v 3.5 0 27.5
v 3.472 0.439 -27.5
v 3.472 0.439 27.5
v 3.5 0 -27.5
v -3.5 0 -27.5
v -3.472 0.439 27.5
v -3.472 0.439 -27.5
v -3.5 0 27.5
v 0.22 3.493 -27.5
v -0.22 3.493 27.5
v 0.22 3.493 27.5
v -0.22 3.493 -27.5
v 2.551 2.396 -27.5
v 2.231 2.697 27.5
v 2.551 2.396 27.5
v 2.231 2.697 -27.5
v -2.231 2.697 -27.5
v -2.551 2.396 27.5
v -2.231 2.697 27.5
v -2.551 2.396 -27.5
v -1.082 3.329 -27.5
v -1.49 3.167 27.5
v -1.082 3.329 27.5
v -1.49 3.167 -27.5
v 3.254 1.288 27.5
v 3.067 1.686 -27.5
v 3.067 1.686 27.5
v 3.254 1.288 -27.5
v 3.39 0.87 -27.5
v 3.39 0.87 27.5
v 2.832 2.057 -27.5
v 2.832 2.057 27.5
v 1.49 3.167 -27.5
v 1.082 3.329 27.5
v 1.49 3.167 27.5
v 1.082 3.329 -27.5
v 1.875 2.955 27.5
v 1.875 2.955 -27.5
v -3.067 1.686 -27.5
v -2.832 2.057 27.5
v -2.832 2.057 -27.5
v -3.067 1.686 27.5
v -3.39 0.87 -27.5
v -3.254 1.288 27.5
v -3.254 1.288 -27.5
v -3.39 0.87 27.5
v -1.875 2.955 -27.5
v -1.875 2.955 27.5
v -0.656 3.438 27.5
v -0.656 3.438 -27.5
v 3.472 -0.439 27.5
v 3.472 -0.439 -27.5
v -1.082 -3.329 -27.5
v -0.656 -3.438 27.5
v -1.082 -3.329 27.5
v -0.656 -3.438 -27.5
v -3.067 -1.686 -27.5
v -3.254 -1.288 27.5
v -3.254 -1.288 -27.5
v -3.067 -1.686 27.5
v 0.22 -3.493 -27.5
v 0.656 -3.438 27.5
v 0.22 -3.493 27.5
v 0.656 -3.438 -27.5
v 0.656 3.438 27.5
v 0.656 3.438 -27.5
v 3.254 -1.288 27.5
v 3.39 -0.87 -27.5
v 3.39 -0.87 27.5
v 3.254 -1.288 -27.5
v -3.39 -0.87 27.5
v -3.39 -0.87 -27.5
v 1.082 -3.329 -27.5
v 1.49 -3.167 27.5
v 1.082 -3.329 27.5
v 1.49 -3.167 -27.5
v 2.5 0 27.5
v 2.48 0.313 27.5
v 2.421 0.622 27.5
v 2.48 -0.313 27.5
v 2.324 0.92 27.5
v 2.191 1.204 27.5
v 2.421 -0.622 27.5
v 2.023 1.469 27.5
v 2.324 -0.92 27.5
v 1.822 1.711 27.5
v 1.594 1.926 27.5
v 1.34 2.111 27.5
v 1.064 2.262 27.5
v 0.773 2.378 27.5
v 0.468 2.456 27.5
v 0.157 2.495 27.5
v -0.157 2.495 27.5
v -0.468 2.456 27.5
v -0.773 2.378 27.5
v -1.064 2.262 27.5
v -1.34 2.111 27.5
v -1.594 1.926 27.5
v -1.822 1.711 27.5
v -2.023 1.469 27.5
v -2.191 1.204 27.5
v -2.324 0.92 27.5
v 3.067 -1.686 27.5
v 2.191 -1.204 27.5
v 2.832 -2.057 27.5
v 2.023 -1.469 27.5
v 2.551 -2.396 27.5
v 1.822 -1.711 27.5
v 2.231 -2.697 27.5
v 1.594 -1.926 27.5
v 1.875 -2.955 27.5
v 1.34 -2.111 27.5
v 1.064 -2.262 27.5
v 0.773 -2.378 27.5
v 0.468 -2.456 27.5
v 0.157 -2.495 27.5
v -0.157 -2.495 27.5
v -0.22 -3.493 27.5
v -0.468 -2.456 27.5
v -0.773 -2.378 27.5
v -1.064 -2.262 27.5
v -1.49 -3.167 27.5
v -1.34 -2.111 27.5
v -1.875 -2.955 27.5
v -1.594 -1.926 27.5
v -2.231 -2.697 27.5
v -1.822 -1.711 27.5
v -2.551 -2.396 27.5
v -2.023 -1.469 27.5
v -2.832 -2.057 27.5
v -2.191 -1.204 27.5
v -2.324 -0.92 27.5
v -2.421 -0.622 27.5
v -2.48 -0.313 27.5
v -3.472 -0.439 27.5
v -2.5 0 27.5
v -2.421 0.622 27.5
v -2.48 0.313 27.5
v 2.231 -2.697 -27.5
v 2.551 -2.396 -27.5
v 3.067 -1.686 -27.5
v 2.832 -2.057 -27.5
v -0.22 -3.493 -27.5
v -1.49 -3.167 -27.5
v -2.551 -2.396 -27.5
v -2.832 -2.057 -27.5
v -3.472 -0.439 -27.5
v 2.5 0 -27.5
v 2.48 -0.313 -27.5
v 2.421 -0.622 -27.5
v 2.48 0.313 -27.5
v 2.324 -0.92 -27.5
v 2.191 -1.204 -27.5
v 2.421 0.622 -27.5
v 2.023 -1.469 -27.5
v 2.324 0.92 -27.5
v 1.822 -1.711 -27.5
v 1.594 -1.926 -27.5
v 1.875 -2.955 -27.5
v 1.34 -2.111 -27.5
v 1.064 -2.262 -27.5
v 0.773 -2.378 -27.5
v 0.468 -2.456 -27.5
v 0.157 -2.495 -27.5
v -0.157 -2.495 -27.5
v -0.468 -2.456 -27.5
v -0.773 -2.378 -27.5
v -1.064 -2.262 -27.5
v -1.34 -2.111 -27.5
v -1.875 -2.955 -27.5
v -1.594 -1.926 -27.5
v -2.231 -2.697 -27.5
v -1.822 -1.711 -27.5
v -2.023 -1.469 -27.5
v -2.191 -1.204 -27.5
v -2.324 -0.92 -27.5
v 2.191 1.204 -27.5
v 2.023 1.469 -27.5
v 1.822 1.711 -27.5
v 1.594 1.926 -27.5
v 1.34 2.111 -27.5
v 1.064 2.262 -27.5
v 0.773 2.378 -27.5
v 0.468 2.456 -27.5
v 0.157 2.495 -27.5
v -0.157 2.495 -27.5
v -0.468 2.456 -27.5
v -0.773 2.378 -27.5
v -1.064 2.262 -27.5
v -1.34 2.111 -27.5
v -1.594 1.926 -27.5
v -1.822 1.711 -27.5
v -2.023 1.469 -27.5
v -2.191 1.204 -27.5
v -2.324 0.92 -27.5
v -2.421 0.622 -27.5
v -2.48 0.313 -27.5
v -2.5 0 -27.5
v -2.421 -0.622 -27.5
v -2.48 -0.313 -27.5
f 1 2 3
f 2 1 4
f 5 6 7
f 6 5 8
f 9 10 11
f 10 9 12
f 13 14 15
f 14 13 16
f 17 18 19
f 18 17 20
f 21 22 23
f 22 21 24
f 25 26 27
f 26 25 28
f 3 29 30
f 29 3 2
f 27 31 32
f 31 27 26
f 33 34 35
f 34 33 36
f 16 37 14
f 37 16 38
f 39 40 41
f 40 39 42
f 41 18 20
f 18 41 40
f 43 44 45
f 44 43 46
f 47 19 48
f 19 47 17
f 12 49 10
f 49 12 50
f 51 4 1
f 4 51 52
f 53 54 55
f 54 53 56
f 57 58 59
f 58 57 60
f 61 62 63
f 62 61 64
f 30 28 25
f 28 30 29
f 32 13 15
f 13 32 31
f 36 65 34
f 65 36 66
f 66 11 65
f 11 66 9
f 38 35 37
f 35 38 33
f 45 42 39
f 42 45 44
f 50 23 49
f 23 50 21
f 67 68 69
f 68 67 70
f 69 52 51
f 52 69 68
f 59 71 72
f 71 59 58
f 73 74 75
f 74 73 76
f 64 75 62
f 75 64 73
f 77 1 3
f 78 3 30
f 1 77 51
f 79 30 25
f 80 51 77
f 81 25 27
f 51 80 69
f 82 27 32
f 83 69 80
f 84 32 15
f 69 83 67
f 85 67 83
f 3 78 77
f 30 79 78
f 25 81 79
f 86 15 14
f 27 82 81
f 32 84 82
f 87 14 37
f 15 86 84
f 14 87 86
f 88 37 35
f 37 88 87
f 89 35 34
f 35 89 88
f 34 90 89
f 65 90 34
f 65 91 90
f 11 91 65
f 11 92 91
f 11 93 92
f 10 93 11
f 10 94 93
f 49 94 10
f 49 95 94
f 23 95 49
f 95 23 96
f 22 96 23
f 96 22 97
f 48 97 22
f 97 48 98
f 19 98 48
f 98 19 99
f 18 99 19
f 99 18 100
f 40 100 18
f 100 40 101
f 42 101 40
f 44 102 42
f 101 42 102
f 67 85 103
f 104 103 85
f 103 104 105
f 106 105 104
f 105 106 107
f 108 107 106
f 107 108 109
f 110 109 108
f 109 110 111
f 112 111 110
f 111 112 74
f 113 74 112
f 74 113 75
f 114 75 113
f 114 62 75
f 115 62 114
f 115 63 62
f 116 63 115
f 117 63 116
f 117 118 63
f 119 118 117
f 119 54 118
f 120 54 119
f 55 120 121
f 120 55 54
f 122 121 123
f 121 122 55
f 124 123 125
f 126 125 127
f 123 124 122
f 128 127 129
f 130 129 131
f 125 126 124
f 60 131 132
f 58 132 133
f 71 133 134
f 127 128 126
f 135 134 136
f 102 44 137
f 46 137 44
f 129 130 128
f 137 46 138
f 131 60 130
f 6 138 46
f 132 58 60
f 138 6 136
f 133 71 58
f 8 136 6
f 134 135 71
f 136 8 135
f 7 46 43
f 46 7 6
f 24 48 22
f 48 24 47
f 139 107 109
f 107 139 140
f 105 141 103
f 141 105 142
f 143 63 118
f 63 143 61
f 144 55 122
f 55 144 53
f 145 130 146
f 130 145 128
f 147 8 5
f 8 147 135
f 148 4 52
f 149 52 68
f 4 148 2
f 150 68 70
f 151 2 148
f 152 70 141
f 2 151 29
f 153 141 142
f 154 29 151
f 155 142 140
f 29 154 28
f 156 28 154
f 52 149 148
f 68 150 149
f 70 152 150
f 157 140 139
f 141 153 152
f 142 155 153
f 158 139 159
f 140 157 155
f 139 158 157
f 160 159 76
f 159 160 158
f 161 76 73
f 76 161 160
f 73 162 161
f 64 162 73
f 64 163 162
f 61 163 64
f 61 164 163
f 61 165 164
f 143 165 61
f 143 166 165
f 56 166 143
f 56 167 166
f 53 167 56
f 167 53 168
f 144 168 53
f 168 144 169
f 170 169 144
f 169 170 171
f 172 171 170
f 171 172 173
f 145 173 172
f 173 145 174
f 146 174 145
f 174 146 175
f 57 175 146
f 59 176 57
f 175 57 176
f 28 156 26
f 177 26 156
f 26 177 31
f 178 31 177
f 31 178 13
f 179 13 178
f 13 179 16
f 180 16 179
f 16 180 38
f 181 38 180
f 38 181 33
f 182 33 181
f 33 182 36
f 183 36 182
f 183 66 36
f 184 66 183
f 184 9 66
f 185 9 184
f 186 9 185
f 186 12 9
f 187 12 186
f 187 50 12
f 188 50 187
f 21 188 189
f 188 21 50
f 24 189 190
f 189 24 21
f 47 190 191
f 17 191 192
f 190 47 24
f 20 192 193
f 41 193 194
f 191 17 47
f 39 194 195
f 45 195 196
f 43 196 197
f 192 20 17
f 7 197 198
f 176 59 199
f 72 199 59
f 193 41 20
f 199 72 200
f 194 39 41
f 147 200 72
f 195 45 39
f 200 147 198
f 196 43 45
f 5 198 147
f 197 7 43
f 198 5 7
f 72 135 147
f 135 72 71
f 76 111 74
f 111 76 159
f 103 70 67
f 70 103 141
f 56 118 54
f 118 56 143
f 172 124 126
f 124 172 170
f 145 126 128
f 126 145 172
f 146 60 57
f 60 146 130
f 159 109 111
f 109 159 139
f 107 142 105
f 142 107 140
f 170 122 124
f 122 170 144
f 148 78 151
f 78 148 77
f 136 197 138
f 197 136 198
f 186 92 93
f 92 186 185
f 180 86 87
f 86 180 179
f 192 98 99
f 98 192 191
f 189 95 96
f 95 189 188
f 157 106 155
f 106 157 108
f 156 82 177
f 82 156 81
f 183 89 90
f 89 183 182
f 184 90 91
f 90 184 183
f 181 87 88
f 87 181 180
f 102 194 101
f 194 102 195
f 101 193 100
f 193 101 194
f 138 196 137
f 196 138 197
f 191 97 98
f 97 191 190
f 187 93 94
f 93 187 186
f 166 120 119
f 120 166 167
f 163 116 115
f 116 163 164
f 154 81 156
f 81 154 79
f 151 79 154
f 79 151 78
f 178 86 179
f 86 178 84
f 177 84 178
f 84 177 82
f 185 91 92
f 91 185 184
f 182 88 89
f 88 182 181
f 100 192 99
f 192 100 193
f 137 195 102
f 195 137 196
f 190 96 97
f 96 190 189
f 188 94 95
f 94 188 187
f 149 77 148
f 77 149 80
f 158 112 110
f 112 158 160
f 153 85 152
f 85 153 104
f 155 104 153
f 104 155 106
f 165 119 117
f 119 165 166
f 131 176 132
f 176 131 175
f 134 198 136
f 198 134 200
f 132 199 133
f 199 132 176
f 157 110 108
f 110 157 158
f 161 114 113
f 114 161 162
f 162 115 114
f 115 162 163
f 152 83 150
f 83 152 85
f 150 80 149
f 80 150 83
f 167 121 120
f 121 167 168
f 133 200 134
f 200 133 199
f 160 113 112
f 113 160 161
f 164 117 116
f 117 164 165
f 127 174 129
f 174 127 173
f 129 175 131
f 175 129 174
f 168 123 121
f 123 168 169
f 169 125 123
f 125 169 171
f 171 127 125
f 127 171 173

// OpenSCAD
$fn = 50;


difference() {
	union() {
		translate(v = [0, 0, -27.5000000000]) {
			cylinder(h = 55, r = 3.5000000000);
		}
	}
	union() {
		translate(v = [0, 0, -100.0000000000]) {
			cylinder(h = 200, r = 2.5000000000);
		}
	}
}
